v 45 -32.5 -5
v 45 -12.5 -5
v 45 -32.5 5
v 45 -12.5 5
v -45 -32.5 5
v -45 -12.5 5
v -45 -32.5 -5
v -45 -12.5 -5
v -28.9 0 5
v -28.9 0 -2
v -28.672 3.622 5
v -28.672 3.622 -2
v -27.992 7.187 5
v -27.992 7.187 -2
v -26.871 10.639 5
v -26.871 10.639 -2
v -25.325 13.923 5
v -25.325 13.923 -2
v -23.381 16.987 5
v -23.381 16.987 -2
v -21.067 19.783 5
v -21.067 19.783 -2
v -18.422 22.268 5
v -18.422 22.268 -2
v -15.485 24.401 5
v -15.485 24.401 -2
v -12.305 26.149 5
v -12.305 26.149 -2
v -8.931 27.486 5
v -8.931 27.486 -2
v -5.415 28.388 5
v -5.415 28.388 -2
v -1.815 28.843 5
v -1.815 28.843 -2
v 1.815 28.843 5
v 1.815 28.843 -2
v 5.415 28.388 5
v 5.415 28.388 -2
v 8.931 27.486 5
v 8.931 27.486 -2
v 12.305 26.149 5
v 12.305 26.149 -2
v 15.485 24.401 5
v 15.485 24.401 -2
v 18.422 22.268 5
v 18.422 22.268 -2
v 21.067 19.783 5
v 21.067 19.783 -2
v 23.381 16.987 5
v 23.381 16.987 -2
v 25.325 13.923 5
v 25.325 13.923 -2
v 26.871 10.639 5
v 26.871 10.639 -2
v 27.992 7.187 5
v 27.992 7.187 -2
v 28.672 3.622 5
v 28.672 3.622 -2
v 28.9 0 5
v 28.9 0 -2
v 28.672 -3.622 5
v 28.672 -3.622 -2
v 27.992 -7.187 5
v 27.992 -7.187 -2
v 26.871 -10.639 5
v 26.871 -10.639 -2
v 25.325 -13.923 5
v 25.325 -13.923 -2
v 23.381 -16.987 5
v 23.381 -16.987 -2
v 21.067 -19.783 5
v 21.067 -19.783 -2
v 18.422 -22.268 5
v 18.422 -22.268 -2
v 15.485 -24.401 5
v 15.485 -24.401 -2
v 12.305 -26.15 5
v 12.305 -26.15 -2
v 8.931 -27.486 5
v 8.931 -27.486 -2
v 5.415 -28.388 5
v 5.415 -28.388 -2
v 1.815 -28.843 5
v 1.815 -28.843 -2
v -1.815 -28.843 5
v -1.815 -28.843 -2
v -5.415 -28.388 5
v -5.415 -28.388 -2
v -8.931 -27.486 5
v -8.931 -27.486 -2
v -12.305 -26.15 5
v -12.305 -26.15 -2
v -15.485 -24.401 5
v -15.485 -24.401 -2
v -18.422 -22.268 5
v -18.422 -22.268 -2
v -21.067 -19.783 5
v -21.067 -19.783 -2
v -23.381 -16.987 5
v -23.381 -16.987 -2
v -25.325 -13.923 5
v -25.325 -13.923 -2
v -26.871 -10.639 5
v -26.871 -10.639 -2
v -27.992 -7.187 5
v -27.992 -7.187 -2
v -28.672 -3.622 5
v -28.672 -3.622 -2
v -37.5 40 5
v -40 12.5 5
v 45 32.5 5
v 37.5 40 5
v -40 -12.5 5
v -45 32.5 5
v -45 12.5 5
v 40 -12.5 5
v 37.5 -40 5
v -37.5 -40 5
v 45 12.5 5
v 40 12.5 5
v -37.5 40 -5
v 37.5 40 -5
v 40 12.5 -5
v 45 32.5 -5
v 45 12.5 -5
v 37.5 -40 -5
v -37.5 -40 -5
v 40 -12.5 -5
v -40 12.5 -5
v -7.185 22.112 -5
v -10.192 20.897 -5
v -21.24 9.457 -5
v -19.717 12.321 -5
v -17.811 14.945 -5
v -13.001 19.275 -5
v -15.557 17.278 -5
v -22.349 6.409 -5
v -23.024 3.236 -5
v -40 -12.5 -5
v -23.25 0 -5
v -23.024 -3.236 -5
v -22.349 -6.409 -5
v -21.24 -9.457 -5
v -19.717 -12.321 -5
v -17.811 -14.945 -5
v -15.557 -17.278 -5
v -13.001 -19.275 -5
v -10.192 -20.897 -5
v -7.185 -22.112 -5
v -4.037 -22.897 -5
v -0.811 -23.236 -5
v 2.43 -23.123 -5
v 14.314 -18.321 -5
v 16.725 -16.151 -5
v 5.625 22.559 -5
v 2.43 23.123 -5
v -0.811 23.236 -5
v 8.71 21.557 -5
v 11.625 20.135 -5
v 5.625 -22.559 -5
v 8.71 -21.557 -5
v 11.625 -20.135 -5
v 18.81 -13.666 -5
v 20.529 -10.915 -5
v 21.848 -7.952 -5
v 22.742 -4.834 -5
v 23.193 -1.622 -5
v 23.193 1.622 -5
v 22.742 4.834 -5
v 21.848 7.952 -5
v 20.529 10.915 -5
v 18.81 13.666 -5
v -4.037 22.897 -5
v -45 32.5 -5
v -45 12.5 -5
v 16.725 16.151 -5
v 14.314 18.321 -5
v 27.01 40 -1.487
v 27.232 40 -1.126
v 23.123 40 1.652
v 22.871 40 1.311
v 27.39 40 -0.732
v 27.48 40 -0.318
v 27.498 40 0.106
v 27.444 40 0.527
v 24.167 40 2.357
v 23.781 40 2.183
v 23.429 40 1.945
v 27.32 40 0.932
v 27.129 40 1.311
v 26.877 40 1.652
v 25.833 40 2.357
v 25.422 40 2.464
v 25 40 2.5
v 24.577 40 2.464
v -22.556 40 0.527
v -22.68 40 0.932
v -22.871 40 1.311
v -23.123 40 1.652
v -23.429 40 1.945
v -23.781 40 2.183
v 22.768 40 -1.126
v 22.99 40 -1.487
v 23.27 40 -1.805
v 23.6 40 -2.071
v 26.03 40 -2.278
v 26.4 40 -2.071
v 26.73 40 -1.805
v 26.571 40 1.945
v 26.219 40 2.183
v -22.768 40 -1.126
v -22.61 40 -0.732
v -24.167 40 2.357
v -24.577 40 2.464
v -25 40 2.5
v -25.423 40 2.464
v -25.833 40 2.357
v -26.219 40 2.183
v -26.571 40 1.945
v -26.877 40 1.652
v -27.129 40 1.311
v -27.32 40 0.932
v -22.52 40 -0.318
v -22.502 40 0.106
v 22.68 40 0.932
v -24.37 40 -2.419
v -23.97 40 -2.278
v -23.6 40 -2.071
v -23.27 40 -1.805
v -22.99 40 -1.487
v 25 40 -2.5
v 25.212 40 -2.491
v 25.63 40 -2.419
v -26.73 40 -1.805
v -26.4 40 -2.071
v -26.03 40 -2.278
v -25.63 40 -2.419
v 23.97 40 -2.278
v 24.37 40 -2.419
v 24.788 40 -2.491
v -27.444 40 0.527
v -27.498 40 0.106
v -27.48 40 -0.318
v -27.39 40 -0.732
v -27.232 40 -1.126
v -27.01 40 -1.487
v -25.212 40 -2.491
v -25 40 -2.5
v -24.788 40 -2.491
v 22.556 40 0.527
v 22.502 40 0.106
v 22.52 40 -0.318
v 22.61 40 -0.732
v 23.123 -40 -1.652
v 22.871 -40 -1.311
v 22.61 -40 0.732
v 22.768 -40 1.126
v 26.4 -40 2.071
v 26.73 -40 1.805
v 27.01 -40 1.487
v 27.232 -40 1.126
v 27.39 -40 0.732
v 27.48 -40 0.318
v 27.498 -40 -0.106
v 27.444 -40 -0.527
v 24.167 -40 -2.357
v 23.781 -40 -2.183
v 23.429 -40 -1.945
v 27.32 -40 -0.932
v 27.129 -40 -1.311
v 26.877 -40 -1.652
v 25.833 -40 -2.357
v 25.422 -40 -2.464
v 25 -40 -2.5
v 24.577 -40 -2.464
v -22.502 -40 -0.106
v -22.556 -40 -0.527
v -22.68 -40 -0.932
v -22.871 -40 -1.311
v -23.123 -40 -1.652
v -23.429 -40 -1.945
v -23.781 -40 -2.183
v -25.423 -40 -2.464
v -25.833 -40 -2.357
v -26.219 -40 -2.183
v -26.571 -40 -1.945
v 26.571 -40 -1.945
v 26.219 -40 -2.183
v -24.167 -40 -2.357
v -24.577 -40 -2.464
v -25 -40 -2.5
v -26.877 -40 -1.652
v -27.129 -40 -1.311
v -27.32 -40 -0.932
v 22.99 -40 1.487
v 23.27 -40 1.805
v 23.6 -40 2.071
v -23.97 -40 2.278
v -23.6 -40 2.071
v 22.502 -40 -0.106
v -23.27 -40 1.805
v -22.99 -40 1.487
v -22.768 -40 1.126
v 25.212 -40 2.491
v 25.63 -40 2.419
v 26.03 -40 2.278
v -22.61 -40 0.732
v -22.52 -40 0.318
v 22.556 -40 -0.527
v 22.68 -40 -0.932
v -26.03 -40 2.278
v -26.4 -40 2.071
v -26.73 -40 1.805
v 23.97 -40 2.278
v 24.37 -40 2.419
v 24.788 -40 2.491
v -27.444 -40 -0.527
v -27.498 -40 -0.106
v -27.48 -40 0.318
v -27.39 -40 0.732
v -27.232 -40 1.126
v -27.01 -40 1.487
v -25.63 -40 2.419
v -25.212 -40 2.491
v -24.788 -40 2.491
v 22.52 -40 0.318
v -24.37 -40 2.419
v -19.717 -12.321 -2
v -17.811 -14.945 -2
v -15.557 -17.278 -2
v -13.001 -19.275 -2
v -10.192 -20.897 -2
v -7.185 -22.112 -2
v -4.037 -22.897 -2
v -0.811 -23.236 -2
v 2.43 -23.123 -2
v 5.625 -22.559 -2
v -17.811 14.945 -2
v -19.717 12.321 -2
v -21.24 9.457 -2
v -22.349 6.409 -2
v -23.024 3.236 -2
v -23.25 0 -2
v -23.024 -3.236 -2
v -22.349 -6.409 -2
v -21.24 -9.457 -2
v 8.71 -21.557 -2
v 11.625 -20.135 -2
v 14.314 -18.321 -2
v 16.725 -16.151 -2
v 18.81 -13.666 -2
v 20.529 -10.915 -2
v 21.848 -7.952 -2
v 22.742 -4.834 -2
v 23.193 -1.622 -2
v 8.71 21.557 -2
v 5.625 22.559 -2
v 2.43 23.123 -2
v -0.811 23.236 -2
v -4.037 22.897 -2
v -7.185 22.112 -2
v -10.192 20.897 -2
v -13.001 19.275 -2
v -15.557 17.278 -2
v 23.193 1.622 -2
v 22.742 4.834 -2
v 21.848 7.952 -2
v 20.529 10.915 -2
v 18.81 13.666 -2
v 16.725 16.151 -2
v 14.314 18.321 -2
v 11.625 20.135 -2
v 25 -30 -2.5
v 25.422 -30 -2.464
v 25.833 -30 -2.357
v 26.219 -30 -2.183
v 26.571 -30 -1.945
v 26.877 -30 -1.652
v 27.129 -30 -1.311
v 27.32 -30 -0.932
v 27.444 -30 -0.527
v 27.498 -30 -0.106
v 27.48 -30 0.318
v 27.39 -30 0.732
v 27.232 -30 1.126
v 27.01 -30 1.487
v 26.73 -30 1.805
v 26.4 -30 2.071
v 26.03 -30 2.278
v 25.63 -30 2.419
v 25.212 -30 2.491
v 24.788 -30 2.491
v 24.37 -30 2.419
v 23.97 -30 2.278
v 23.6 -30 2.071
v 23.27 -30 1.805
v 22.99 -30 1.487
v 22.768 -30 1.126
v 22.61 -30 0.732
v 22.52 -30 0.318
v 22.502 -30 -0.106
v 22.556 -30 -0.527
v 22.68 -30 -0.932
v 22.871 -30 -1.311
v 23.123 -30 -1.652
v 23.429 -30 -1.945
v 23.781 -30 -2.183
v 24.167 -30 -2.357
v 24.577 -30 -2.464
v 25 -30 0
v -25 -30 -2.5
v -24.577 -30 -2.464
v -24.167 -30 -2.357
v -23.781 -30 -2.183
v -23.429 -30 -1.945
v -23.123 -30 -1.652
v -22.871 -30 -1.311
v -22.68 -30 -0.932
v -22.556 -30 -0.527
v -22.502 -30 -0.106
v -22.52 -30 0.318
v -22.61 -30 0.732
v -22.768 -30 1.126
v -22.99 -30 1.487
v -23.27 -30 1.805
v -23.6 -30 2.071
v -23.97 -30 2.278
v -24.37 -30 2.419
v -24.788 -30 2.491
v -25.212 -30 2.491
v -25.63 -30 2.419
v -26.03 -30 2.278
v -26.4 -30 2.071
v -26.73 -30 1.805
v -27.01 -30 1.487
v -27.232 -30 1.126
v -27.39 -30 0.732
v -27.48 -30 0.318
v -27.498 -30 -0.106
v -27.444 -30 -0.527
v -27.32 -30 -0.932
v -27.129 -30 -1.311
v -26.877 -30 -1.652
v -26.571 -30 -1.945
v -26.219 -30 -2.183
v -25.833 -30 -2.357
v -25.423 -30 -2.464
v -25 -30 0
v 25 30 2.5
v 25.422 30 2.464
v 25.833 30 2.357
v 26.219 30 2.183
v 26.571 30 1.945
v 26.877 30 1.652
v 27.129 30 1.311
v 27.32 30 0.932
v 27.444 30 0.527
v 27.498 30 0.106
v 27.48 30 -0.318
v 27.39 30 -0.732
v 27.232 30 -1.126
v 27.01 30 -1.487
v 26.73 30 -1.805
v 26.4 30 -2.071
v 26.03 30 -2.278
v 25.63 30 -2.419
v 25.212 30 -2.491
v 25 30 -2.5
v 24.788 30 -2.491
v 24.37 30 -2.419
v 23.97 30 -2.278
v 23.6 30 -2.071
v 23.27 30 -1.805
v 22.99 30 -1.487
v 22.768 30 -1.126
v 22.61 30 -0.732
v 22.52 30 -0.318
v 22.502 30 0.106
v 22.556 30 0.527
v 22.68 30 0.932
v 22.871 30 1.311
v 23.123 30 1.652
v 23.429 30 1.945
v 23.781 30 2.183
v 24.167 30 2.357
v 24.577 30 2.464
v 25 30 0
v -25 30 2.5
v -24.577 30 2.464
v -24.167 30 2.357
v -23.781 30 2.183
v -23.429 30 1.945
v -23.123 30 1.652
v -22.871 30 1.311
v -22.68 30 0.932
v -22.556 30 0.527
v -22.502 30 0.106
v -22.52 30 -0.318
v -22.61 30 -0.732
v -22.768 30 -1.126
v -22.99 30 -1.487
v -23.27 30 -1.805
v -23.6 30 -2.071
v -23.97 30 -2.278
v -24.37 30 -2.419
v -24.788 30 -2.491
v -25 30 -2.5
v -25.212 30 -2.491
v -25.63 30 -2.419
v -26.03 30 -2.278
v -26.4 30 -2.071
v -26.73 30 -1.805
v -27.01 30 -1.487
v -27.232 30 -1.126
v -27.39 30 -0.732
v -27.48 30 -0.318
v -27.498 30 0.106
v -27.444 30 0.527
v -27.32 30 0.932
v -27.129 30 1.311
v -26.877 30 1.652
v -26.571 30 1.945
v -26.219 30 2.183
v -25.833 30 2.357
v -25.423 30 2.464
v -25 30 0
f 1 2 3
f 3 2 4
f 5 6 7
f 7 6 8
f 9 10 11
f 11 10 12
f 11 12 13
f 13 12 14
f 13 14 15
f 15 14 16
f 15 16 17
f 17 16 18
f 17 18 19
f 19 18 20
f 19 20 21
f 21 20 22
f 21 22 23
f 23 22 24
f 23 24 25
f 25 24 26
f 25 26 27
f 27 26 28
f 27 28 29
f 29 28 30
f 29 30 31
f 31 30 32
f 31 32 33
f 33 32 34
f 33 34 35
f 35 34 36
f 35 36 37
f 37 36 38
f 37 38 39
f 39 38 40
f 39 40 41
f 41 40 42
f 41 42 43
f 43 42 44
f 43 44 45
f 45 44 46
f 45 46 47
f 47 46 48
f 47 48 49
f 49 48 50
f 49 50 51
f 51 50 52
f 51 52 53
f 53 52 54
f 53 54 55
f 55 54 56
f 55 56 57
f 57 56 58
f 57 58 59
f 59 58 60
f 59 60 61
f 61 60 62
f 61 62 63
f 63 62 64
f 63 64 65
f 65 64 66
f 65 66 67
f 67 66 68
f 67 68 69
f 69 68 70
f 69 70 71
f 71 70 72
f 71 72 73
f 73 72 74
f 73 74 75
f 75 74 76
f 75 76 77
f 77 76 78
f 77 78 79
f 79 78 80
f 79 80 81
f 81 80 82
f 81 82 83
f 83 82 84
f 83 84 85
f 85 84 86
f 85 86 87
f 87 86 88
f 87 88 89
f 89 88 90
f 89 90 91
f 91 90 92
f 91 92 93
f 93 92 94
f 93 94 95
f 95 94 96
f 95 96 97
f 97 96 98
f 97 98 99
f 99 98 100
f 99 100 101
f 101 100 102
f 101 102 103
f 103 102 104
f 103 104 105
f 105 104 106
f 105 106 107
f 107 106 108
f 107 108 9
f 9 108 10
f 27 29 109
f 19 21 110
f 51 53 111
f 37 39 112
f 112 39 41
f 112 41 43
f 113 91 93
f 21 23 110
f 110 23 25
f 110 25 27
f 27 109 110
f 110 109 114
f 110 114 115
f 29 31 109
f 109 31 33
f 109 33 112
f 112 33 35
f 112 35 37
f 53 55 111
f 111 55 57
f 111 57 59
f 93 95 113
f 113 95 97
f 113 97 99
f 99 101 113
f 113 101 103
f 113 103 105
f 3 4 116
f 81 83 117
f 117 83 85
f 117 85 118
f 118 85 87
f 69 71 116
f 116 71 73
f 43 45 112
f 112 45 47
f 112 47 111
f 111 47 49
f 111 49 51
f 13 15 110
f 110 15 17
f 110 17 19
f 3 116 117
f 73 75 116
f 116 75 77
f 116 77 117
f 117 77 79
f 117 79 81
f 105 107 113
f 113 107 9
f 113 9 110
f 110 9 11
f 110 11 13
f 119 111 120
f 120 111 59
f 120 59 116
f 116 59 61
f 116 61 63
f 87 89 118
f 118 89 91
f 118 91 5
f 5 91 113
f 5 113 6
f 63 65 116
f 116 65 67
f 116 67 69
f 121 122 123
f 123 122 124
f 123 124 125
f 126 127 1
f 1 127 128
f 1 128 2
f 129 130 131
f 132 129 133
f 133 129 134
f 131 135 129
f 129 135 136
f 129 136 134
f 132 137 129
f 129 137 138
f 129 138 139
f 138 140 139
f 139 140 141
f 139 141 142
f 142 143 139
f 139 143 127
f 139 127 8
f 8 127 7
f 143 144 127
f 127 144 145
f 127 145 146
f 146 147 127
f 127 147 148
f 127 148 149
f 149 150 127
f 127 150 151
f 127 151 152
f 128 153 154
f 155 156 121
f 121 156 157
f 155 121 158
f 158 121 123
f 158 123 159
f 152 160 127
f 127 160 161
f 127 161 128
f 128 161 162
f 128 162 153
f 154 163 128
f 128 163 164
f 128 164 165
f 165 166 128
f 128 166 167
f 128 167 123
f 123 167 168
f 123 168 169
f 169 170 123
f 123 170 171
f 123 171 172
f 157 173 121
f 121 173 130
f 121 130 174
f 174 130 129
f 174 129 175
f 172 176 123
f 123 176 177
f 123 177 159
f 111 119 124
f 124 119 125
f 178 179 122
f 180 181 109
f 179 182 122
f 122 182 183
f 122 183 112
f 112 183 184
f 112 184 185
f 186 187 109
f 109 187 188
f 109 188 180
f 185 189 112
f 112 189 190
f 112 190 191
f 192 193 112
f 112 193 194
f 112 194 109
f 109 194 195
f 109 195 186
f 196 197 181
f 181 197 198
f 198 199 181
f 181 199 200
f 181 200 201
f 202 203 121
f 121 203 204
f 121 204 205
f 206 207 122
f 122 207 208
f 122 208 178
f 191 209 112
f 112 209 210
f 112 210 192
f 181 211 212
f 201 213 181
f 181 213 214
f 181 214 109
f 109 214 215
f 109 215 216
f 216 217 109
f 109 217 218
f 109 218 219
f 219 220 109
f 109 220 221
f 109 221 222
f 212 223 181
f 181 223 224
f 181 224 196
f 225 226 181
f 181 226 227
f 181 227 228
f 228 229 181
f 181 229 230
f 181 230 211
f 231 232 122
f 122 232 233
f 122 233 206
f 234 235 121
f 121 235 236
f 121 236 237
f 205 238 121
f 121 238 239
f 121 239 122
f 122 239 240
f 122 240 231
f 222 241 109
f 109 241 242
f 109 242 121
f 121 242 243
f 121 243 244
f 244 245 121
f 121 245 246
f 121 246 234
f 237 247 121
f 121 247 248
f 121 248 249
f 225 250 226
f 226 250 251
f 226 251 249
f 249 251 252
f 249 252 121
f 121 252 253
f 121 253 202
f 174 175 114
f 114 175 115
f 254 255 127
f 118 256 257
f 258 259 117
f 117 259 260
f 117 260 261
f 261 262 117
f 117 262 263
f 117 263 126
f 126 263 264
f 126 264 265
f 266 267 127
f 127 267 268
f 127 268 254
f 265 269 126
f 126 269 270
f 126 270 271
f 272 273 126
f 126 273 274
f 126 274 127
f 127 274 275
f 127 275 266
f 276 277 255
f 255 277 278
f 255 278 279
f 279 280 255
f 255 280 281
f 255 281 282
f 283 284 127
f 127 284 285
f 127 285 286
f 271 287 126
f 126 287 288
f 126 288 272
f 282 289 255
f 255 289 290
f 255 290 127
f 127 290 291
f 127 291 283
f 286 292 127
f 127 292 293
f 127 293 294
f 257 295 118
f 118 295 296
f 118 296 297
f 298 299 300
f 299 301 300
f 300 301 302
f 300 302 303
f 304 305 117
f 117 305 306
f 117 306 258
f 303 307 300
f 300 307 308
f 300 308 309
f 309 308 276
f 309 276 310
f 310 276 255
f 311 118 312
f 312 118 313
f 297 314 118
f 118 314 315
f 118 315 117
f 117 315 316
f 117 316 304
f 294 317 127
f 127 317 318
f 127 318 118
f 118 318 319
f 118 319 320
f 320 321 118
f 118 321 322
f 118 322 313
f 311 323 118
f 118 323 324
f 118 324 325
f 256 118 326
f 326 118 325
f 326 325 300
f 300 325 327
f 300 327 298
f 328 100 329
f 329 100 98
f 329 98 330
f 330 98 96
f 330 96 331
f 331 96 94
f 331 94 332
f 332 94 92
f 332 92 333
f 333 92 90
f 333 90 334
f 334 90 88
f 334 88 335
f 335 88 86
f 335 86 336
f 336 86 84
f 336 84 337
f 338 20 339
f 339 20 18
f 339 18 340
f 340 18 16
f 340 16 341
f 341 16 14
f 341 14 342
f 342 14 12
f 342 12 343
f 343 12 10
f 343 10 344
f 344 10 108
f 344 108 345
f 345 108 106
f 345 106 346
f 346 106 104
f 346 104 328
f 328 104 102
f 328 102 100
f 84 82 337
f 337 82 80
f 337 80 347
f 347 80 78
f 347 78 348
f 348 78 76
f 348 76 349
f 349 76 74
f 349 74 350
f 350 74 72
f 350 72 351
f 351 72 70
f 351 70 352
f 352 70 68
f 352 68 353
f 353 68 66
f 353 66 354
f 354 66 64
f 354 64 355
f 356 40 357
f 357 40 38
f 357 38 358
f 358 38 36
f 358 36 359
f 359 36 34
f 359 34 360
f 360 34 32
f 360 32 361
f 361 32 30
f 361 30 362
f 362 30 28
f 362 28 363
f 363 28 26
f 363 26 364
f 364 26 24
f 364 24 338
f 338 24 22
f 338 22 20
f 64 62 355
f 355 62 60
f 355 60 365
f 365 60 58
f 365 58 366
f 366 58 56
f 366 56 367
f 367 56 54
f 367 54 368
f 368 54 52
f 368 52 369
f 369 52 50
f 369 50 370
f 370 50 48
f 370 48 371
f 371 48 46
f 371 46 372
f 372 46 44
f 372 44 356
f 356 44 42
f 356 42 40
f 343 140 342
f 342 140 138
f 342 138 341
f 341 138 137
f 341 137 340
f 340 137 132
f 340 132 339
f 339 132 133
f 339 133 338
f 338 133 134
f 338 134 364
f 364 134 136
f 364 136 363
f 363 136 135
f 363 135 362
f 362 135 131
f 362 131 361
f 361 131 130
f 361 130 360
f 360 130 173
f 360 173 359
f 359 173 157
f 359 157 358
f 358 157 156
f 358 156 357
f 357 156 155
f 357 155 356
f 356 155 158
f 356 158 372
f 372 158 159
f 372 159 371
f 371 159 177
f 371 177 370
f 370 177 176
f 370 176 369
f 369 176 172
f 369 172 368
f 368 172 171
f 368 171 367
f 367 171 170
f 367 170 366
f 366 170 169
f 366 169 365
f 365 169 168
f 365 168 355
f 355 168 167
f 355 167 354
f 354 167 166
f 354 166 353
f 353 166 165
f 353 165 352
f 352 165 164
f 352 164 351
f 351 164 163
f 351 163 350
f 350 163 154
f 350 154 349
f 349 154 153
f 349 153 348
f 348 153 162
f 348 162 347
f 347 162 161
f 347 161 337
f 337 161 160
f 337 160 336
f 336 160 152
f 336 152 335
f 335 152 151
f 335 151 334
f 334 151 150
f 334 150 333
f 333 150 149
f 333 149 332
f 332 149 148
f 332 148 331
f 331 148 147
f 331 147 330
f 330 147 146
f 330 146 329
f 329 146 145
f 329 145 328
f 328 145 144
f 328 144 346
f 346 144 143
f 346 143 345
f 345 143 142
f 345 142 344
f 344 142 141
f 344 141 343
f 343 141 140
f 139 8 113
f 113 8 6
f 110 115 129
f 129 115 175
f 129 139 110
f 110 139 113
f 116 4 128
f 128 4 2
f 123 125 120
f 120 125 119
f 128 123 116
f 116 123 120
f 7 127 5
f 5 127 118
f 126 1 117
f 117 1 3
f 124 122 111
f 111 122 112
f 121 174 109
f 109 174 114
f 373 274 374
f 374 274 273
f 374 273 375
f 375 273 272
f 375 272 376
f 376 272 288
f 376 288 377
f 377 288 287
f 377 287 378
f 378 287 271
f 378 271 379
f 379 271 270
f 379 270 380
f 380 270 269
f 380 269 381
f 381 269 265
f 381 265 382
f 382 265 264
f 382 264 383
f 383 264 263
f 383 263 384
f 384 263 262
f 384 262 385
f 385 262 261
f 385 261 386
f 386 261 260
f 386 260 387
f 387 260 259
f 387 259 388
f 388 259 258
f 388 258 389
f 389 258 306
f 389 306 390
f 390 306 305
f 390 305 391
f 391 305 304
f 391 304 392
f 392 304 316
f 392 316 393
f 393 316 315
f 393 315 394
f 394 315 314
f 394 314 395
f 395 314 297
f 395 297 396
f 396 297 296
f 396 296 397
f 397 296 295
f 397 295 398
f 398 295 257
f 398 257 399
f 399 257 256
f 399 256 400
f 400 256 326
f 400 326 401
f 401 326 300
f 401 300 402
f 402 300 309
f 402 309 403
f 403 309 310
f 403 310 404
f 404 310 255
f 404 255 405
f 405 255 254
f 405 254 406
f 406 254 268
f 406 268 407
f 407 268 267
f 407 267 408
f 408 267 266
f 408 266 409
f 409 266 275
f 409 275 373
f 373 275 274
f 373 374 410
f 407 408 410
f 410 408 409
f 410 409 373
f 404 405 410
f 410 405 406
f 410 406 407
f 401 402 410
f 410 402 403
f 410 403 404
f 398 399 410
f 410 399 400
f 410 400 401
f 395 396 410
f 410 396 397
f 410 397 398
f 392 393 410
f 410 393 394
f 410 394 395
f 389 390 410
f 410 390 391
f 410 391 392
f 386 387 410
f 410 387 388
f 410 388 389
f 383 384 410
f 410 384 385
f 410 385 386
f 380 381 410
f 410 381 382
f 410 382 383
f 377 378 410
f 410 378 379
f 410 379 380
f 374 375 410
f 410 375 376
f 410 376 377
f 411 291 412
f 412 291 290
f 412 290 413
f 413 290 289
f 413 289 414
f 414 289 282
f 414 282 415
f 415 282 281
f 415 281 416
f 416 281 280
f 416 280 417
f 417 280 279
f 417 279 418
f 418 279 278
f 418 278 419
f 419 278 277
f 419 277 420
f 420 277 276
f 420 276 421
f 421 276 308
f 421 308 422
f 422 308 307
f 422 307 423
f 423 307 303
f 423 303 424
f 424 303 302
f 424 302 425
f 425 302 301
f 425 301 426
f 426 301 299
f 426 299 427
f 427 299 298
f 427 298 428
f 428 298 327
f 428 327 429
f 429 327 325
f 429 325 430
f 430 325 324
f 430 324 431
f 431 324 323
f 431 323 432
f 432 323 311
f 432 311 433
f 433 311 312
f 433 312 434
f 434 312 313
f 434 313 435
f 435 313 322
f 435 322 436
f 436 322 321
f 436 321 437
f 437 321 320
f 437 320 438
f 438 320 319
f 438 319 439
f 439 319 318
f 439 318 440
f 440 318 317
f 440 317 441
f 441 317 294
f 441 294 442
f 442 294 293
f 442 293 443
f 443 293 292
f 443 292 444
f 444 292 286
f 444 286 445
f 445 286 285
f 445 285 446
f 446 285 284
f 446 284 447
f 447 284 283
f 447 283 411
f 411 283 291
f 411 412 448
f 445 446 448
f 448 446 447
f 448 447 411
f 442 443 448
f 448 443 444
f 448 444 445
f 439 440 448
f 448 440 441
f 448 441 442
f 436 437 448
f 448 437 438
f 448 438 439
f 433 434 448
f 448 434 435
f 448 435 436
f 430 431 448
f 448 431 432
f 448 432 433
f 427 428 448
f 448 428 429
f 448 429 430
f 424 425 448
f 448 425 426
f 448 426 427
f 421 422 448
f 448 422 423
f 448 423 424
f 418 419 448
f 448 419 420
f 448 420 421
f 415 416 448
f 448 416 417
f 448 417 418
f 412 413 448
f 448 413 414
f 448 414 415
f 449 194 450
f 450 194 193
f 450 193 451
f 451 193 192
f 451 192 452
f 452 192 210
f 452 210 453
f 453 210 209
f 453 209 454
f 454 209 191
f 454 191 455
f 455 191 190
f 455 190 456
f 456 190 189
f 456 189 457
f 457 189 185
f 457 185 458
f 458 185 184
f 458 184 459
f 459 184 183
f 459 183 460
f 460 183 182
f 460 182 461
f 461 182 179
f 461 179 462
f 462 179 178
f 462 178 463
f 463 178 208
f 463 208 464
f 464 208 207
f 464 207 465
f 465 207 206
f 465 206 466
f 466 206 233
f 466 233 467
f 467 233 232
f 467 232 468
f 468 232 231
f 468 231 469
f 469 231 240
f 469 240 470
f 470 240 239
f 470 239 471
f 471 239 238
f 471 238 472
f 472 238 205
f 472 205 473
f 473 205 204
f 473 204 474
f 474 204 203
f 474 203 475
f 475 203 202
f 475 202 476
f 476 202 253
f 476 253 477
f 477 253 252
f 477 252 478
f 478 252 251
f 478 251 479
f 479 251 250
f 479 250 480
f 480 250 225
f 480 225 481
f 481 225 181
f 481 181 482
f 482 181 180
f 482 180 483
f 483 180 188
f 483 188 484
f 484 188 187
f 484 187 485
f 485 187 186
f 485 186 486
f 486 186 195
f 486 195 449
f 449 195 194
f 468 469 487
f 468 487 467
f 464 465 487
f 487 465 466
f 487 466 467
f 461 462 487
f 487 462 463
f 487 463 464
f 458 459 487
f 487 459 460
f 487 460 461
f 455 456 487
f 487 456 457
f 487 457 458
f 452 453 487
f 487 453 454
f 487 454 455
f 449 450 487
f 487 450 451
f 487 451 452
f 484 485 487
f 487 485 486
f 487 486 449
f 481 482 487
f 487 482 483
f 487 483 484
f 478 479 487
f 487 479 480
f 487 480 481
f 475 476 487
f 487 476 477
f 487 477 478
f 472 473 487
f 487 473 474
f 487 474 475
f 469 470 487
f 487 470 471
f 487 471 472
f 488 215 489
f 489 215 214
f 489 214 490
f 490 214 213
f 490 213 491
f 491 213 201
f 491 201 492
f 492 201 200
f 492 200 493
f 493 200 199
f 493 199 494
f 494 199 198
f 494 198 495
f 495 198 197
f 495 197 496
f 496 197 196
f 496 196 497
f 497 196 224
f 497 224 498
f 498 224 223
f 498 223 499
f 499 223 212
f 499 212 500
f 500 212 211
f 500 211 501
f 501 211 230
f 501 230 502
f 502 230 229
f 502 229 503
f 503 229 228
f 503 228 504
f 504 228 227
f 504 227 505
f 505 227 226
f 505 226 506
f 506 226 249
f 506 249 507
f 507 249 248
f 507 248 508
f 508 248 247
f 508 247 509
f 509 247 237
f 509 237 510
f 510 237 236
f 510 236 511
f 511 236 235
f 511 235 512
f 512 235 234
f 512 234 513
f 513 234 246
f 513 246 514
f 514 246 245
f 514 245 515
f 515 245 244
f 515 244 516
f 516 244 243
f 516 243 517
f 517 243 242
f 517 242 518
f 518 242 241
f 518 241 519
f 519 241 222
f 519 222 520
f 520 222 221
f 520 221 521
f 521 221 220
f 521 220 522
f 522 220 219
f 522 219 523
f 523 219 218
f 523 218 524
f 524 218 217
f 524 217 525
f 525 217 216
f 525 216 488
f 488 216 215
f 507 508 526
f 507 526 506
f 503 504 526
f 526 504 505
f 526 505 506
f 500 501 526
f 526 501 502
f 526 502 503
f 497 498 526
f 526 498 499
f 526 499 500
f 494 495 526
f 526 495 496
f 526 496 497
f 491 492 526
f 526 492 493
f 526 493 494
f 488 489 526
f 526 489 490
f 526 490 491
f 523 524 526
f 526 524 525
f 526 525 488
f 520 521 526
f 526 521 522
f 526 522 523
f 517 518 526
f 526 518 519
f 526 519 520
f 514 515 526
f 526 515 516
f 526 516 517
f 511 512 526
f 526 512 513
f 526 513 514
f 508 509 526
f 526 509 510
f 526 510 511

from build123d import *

# Parameters (mm, degrees)
CROQUIS1_W              = 90
CROQUIS1_H              = 80
CROQUIS1_R              = 28.9
SALIENTE_EXTRUIR1_DEPTH = 5
CROQUIS2_R              = 28.9
CROQUIS2_R_2            = 23.25
SALIENTE_EXTRUIR2_DEPTH = 3
CROQUIS4_W              = 10
CROQUIS4_H              = 25
CORTAR_EXTRUIR2_DEPTH   = 62.032778079
CHAFL_N2_SIZE           = 7.5
CROQUIS9_R              = 2.5
CORTAR_EXTRUIR3_DEPTH   = 10


with BuildPart() as part:
    # Croquis1 → Saliente-Extruir1 (new, symmetric)
    with BuildSketch(Plane.XY):
        Rectangle(CROQUIS1_W, CROQUIS1_H)
        Circle(CROQUIS1_R, mode=Mode.SUBTRACT)
    extrude(amount=SALIENTE_EXTRUIR1_DEPTH, both=True)

    # Croquis2 → Saliente-Extruir2 (add)
    with BuildSketch(Plane(origin=(0, 0, -5), x_dir=(-1, 0, 0), z_dir=(0, 0, -1))):
        Circle(CROQUIS2_R)
        Circle(CROQUIS2_R_2, mode=Mode.SUBTRACT)
    extrude(amount=-SALIENTE_EXTRUIR2_DEPTH)

    # Croquis4 → Cortar-Extruir2 (cut, through all)
    with BuildSketch(Plane.XY.offset(5)):
        with Locations((-45, 0)):
            Rectangle(CROQUIS4_W, CROQUIS4_H)
        with Locations((45, 0)):
            Rectangle(CROQUIS4_W, CROQUIS4_H)
    extrude(amount=-CORTAR_EXTRUIR2_DEPTH, mode=Mode.SUBTRACT)

    # Chaflán2
    chafl_n2_edges = [part.edges().sort_by_distance(p)[0] for p in [
        (45, -40, 0),
        (-45, -40, 0),
        (-45, 40, 0),
        (45, 40, 0),
    ]]
    chamfer(chafl_n2_edges, length=CHAFL_N2_SIZE)

    # Croquis9 → Cortar-Extruir3 (cut)
    with BuildSketch(Plane.XZ.offset(40)):
        with Locations(Location((-25, 0, 0), (0, 0, 270))):
            Circle(CROQUIS9_R)
        with Locations(Location((25, 0, 0), (0, 0, 270))):
            Circle(CROQUIS9_R)
    cortar_extruir3 = extrude(amount=-CORTAR_EXTRUIR3_DEPTH, mode=Mode.SUBTRACT)

    # Simetría1: Cortar-Extruir3 across plane
    add(cortar_extruir3.mirror(Plane.ZX), mode=Mode.SUBTRACT)


solid = part.part
